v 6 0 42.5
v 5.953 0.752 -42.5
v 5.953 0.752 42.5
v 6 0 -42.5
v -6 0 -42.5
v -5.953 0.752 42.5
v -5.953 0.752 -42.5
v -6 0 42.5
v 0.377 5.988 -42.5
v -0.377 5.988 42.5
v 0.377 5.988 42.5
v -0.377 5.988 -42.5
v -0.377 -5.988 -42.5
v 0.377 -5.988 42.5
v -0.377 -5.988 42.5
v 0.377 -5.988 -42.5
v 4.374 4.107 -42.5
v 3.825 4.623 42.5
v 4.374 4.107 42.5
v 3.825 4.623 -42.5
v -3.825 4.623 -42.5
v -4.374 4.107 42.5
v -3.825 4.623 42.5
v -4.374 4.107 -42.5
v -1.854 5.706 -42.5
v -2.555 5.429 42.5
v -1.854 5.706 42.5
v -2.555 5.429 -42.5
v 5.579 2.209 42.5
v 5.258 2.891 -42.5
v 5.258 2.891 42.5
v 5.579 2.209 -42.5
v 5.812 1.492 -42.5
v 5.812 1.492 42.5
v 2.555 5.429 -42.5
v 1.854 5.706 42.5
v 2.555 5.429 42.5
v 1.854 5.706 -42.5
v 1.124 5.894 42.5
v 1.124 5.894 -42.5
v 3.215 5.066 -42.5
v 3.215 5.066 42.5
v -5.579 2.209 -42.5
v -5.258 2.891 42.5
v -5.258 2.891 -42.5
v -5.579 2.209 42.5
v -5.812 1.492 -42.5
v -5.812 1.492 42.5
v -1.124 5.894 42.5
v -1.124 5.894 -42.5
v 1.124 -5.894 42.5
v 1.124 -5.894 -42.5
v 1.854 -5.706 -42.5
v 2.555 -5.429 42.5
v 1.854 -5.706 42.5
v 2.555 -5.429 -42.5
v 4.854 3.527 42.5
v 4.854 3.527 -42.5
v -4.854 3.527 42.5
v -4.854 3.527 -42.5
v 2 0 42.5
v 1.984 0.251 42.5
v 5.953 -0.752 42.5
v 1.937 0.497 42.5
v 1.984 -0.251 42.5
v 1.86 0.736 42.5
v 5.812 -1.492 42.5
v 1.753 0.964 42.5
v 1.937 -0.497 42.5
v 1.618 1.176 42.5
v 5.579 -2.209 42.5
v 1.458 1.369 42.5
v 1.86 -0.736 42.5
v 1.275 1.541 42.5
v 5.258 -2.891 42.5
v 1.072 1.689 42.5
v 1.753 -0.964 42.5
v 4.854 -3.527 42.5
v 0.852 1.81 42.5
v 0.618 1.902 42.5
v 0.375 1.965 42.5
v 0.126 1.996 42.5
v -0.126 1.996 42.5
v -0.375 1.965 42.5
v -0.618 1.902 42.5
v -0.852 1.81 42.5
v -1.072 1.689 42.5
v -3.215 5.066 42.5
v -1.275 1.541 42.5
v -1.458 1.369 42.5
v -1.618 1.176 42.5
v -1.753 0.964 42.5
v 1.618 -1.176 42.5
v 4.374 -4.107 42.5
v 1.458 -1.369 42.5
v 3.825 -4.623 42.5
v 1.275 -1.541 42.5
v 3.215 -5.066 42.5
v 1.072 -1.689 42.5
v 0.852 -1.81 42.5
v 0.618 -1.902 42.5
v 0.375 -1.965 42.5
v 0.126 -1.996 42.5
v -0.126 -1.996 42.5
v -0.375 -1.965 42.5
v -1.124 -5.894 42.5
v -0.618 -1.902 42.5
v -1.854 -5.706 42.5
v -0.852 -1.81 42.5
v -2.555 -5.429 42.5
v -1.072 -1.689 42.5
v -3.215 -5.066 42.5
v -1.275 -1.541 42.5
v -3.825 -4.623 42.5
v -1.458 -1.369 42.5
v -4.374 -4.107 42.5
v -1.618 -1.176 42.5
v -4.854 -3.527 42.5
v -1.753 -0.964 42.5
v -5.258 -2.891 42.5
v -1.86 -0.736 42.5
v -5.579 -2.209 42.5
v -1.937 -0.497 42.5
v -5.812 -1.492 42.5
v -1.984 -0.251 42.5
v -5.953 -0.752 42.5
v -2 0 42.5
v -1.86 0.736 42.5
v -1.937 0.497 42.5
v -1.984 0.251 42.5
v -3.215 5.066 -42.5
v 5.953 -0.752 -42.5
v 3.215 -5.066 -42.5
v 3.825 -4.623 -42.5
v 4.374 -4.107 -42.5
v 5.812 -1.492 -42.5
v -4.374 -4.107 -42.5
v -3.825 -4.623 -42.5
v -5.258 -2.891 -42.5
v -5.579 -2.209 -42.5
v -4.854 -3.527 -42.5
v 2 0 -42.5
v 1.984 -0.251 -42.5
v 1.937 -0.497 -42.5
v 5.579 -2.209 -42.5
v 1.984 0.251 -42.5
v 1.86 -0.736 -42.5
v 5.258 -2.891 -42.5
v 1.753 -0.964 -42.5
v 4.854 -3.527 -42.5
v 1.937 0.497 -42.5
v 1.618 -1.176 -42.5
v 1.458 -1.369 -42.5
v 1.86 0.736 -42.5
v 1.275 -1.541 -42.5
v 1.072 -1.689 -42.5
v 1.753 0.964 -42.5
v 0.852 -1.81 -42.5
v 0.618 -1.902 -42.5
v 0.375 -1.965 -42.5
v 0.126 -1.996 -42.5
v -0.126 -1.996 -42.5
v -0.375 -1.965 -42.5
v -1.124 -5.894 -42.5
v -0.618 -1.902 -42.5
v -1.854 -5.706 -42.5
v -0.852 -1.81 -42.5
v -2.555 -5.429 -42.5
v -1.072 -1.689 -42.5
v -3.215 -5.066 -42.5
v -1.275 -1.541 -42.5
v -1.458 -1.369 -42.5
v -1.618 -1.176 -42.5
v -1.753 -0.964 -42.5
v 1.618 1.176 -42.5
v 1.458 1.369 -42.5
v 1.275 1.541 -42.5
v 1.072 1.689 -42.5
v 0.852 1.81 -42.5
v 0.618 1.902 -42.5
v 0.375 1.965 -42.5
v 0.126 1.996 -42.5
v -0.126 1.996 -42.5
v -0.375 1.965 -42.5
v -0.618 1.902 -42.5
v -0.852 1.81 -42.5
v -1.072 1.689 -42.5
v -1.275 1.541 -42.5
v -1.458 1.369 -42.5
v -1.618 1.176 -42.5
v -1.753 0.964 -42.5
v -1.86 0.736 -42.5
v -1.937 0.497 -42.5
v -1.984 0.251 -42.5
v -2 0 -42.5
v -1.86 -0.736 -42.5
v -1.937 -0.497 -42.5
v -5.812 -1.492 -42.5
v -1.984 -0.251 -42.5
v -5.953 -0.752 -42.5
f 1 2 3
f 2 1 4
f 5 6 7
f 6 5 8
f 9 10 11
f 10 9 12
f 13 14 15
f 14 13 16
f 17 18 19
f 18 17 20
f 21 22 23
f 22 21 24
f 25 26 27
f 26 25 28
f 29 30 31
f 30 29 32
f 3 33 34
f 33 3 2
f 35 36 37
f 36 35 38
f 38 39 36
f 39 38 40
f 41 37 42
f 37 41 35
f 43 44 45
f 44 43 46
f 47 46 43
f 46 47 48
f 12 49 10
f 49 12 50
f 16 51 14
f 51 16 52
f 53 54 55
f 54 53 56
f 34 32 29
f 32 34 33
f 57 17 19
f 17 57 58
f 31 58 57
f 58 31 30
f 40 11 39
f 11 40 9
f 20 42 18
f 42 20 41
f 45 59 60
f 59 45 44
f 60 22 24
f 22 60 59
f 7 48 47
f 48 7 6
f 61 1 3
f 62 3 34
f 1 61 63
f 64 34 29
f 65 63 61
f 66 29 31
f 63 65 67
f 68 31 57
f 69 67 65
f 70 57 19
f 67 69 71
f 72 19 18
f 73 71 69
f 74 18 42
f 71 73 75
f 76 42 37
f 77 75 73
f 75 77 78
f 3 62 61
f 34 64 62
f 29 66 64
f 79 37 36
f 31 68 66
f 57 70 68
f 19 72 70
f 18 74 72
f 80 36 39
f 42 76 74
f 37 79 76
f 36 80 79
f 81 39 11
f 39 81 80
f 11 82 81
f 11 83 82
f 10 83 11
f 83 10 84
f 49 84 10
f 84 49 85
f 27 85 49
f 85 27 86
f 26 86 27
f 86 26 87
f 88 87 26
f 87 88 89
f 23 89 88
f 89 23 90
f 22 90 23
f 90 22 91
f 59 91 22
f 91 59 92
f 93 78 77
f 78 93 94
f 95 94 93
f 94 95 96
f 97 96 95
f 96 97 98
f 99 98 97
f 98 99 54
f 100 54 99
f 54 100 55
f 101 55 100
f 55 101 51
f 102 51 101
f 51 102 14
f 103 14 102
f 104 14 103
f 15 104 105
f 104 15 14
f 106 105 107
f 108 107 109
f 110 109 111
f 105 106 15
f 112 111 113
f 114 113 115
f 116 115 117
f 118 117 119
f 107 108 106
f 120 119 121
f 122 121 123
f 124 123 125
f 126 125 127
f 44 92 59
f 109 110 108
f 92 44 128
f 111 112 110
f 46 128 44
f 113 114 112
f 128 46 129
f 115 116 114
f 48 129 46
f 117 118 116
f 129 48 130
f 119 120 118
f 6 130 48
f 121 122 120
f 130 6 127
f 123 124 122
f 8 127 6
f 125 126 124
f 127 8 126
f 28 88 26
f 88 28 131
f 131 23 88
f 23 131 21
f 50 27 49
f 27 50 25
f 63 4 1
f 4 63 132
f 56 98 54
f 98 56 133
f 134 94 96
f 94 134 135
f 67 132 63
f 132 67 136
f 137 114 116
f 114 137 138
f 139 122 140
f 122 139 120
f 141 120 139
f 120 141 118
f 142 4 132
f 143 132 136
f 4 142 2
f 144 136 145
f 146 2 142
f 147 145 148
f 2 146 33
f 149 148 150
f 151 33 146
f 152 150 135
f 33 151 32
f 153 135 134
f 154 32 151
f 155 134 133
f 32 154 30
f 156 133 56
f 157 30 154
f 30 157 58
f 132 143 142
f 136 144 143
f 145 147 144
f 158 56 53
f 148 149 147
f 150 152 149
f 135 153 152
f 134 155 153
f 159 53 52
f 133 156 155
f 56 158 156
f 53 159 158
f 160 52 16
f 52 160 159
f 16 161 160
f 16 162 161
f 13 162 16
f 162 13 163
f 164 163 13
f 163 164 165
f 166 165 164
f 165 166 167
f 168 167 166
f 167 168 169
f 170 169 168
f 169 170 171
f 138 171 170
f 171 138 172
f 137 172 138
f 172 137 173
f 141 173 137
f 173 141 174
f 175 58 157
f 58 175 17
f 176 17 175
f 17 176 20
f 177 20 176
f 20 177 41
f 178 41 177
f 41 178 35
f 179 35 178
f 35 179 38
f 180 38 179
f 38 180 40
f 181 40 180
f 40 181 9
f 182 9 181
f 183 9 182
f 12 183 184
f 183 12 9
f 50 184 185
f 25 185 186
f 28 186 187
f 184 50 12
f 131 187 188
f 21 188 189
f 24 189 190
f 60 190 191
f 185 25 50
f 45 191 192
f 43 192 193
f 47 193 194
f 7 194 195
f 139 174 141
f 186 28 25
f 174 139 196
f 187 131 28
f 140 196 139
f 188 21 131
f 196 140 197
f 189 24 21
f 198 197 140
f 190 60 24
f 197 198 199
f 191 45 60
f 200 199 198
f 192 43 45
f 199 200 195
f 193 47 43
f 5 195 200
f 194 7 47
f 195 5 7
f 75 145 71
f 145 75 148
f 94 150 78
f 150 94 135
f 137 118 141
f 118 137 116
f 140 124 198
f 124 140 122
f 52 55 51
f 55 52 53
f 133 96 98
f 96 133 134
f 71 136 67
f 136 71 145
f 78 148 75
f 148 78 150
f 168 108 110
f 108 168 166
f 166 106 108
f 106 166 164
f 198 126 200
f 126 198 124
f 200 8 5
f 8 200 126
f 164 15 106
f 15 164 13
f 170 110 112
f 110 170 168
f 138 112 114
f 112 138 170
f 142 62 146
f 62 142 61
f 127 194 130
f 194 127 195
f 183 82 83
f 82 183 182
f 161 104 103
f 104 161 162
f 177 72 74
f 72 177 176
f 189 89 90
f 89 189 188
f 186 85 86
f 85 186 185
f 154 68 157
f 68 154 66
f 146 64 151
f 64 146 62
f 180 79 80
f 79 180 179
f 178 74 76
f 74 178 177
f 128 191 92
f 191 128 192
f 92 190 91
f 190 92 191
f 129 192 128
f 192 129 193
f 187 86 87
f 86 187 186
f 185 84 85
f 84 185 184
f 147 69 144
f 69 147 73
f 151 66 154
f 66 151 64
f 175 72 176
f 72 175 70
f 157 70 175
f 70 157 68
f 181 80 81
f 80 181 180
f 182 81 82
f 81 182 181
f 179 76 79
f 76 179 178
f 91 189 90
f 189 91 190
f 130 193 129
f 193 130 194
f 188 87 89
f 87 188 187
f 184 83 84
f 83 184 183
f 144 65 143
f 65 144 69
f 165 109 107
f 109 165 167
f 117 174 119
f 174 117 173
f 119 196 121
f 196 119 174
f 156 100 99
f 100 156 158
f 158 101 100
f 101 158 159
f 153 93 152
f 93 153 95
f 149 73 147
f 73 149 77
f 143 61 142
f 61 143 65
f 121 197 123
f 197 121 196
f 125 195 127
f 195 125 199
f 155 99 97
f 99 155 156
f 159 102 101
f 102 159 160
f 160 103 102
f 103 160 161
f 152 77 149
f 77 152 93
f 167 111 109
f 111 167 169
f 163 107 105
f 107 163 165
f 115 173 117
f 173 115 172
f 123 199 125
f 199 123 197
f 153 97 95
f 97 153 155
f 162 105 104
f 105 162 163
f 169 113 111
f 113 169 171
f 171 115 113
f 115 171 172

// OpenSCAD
$fn = 50;


difference() {
	union() {
		translate(v = [0, 0, -42.5000000000]) {
			cylinder(h = 85, r = 6.0000000000);
		}
	}
	union() {
		translate(v = [0, 0, -100.0000000000]) {
			cylinder(h = 200, r = 2);
		}
	}
}
